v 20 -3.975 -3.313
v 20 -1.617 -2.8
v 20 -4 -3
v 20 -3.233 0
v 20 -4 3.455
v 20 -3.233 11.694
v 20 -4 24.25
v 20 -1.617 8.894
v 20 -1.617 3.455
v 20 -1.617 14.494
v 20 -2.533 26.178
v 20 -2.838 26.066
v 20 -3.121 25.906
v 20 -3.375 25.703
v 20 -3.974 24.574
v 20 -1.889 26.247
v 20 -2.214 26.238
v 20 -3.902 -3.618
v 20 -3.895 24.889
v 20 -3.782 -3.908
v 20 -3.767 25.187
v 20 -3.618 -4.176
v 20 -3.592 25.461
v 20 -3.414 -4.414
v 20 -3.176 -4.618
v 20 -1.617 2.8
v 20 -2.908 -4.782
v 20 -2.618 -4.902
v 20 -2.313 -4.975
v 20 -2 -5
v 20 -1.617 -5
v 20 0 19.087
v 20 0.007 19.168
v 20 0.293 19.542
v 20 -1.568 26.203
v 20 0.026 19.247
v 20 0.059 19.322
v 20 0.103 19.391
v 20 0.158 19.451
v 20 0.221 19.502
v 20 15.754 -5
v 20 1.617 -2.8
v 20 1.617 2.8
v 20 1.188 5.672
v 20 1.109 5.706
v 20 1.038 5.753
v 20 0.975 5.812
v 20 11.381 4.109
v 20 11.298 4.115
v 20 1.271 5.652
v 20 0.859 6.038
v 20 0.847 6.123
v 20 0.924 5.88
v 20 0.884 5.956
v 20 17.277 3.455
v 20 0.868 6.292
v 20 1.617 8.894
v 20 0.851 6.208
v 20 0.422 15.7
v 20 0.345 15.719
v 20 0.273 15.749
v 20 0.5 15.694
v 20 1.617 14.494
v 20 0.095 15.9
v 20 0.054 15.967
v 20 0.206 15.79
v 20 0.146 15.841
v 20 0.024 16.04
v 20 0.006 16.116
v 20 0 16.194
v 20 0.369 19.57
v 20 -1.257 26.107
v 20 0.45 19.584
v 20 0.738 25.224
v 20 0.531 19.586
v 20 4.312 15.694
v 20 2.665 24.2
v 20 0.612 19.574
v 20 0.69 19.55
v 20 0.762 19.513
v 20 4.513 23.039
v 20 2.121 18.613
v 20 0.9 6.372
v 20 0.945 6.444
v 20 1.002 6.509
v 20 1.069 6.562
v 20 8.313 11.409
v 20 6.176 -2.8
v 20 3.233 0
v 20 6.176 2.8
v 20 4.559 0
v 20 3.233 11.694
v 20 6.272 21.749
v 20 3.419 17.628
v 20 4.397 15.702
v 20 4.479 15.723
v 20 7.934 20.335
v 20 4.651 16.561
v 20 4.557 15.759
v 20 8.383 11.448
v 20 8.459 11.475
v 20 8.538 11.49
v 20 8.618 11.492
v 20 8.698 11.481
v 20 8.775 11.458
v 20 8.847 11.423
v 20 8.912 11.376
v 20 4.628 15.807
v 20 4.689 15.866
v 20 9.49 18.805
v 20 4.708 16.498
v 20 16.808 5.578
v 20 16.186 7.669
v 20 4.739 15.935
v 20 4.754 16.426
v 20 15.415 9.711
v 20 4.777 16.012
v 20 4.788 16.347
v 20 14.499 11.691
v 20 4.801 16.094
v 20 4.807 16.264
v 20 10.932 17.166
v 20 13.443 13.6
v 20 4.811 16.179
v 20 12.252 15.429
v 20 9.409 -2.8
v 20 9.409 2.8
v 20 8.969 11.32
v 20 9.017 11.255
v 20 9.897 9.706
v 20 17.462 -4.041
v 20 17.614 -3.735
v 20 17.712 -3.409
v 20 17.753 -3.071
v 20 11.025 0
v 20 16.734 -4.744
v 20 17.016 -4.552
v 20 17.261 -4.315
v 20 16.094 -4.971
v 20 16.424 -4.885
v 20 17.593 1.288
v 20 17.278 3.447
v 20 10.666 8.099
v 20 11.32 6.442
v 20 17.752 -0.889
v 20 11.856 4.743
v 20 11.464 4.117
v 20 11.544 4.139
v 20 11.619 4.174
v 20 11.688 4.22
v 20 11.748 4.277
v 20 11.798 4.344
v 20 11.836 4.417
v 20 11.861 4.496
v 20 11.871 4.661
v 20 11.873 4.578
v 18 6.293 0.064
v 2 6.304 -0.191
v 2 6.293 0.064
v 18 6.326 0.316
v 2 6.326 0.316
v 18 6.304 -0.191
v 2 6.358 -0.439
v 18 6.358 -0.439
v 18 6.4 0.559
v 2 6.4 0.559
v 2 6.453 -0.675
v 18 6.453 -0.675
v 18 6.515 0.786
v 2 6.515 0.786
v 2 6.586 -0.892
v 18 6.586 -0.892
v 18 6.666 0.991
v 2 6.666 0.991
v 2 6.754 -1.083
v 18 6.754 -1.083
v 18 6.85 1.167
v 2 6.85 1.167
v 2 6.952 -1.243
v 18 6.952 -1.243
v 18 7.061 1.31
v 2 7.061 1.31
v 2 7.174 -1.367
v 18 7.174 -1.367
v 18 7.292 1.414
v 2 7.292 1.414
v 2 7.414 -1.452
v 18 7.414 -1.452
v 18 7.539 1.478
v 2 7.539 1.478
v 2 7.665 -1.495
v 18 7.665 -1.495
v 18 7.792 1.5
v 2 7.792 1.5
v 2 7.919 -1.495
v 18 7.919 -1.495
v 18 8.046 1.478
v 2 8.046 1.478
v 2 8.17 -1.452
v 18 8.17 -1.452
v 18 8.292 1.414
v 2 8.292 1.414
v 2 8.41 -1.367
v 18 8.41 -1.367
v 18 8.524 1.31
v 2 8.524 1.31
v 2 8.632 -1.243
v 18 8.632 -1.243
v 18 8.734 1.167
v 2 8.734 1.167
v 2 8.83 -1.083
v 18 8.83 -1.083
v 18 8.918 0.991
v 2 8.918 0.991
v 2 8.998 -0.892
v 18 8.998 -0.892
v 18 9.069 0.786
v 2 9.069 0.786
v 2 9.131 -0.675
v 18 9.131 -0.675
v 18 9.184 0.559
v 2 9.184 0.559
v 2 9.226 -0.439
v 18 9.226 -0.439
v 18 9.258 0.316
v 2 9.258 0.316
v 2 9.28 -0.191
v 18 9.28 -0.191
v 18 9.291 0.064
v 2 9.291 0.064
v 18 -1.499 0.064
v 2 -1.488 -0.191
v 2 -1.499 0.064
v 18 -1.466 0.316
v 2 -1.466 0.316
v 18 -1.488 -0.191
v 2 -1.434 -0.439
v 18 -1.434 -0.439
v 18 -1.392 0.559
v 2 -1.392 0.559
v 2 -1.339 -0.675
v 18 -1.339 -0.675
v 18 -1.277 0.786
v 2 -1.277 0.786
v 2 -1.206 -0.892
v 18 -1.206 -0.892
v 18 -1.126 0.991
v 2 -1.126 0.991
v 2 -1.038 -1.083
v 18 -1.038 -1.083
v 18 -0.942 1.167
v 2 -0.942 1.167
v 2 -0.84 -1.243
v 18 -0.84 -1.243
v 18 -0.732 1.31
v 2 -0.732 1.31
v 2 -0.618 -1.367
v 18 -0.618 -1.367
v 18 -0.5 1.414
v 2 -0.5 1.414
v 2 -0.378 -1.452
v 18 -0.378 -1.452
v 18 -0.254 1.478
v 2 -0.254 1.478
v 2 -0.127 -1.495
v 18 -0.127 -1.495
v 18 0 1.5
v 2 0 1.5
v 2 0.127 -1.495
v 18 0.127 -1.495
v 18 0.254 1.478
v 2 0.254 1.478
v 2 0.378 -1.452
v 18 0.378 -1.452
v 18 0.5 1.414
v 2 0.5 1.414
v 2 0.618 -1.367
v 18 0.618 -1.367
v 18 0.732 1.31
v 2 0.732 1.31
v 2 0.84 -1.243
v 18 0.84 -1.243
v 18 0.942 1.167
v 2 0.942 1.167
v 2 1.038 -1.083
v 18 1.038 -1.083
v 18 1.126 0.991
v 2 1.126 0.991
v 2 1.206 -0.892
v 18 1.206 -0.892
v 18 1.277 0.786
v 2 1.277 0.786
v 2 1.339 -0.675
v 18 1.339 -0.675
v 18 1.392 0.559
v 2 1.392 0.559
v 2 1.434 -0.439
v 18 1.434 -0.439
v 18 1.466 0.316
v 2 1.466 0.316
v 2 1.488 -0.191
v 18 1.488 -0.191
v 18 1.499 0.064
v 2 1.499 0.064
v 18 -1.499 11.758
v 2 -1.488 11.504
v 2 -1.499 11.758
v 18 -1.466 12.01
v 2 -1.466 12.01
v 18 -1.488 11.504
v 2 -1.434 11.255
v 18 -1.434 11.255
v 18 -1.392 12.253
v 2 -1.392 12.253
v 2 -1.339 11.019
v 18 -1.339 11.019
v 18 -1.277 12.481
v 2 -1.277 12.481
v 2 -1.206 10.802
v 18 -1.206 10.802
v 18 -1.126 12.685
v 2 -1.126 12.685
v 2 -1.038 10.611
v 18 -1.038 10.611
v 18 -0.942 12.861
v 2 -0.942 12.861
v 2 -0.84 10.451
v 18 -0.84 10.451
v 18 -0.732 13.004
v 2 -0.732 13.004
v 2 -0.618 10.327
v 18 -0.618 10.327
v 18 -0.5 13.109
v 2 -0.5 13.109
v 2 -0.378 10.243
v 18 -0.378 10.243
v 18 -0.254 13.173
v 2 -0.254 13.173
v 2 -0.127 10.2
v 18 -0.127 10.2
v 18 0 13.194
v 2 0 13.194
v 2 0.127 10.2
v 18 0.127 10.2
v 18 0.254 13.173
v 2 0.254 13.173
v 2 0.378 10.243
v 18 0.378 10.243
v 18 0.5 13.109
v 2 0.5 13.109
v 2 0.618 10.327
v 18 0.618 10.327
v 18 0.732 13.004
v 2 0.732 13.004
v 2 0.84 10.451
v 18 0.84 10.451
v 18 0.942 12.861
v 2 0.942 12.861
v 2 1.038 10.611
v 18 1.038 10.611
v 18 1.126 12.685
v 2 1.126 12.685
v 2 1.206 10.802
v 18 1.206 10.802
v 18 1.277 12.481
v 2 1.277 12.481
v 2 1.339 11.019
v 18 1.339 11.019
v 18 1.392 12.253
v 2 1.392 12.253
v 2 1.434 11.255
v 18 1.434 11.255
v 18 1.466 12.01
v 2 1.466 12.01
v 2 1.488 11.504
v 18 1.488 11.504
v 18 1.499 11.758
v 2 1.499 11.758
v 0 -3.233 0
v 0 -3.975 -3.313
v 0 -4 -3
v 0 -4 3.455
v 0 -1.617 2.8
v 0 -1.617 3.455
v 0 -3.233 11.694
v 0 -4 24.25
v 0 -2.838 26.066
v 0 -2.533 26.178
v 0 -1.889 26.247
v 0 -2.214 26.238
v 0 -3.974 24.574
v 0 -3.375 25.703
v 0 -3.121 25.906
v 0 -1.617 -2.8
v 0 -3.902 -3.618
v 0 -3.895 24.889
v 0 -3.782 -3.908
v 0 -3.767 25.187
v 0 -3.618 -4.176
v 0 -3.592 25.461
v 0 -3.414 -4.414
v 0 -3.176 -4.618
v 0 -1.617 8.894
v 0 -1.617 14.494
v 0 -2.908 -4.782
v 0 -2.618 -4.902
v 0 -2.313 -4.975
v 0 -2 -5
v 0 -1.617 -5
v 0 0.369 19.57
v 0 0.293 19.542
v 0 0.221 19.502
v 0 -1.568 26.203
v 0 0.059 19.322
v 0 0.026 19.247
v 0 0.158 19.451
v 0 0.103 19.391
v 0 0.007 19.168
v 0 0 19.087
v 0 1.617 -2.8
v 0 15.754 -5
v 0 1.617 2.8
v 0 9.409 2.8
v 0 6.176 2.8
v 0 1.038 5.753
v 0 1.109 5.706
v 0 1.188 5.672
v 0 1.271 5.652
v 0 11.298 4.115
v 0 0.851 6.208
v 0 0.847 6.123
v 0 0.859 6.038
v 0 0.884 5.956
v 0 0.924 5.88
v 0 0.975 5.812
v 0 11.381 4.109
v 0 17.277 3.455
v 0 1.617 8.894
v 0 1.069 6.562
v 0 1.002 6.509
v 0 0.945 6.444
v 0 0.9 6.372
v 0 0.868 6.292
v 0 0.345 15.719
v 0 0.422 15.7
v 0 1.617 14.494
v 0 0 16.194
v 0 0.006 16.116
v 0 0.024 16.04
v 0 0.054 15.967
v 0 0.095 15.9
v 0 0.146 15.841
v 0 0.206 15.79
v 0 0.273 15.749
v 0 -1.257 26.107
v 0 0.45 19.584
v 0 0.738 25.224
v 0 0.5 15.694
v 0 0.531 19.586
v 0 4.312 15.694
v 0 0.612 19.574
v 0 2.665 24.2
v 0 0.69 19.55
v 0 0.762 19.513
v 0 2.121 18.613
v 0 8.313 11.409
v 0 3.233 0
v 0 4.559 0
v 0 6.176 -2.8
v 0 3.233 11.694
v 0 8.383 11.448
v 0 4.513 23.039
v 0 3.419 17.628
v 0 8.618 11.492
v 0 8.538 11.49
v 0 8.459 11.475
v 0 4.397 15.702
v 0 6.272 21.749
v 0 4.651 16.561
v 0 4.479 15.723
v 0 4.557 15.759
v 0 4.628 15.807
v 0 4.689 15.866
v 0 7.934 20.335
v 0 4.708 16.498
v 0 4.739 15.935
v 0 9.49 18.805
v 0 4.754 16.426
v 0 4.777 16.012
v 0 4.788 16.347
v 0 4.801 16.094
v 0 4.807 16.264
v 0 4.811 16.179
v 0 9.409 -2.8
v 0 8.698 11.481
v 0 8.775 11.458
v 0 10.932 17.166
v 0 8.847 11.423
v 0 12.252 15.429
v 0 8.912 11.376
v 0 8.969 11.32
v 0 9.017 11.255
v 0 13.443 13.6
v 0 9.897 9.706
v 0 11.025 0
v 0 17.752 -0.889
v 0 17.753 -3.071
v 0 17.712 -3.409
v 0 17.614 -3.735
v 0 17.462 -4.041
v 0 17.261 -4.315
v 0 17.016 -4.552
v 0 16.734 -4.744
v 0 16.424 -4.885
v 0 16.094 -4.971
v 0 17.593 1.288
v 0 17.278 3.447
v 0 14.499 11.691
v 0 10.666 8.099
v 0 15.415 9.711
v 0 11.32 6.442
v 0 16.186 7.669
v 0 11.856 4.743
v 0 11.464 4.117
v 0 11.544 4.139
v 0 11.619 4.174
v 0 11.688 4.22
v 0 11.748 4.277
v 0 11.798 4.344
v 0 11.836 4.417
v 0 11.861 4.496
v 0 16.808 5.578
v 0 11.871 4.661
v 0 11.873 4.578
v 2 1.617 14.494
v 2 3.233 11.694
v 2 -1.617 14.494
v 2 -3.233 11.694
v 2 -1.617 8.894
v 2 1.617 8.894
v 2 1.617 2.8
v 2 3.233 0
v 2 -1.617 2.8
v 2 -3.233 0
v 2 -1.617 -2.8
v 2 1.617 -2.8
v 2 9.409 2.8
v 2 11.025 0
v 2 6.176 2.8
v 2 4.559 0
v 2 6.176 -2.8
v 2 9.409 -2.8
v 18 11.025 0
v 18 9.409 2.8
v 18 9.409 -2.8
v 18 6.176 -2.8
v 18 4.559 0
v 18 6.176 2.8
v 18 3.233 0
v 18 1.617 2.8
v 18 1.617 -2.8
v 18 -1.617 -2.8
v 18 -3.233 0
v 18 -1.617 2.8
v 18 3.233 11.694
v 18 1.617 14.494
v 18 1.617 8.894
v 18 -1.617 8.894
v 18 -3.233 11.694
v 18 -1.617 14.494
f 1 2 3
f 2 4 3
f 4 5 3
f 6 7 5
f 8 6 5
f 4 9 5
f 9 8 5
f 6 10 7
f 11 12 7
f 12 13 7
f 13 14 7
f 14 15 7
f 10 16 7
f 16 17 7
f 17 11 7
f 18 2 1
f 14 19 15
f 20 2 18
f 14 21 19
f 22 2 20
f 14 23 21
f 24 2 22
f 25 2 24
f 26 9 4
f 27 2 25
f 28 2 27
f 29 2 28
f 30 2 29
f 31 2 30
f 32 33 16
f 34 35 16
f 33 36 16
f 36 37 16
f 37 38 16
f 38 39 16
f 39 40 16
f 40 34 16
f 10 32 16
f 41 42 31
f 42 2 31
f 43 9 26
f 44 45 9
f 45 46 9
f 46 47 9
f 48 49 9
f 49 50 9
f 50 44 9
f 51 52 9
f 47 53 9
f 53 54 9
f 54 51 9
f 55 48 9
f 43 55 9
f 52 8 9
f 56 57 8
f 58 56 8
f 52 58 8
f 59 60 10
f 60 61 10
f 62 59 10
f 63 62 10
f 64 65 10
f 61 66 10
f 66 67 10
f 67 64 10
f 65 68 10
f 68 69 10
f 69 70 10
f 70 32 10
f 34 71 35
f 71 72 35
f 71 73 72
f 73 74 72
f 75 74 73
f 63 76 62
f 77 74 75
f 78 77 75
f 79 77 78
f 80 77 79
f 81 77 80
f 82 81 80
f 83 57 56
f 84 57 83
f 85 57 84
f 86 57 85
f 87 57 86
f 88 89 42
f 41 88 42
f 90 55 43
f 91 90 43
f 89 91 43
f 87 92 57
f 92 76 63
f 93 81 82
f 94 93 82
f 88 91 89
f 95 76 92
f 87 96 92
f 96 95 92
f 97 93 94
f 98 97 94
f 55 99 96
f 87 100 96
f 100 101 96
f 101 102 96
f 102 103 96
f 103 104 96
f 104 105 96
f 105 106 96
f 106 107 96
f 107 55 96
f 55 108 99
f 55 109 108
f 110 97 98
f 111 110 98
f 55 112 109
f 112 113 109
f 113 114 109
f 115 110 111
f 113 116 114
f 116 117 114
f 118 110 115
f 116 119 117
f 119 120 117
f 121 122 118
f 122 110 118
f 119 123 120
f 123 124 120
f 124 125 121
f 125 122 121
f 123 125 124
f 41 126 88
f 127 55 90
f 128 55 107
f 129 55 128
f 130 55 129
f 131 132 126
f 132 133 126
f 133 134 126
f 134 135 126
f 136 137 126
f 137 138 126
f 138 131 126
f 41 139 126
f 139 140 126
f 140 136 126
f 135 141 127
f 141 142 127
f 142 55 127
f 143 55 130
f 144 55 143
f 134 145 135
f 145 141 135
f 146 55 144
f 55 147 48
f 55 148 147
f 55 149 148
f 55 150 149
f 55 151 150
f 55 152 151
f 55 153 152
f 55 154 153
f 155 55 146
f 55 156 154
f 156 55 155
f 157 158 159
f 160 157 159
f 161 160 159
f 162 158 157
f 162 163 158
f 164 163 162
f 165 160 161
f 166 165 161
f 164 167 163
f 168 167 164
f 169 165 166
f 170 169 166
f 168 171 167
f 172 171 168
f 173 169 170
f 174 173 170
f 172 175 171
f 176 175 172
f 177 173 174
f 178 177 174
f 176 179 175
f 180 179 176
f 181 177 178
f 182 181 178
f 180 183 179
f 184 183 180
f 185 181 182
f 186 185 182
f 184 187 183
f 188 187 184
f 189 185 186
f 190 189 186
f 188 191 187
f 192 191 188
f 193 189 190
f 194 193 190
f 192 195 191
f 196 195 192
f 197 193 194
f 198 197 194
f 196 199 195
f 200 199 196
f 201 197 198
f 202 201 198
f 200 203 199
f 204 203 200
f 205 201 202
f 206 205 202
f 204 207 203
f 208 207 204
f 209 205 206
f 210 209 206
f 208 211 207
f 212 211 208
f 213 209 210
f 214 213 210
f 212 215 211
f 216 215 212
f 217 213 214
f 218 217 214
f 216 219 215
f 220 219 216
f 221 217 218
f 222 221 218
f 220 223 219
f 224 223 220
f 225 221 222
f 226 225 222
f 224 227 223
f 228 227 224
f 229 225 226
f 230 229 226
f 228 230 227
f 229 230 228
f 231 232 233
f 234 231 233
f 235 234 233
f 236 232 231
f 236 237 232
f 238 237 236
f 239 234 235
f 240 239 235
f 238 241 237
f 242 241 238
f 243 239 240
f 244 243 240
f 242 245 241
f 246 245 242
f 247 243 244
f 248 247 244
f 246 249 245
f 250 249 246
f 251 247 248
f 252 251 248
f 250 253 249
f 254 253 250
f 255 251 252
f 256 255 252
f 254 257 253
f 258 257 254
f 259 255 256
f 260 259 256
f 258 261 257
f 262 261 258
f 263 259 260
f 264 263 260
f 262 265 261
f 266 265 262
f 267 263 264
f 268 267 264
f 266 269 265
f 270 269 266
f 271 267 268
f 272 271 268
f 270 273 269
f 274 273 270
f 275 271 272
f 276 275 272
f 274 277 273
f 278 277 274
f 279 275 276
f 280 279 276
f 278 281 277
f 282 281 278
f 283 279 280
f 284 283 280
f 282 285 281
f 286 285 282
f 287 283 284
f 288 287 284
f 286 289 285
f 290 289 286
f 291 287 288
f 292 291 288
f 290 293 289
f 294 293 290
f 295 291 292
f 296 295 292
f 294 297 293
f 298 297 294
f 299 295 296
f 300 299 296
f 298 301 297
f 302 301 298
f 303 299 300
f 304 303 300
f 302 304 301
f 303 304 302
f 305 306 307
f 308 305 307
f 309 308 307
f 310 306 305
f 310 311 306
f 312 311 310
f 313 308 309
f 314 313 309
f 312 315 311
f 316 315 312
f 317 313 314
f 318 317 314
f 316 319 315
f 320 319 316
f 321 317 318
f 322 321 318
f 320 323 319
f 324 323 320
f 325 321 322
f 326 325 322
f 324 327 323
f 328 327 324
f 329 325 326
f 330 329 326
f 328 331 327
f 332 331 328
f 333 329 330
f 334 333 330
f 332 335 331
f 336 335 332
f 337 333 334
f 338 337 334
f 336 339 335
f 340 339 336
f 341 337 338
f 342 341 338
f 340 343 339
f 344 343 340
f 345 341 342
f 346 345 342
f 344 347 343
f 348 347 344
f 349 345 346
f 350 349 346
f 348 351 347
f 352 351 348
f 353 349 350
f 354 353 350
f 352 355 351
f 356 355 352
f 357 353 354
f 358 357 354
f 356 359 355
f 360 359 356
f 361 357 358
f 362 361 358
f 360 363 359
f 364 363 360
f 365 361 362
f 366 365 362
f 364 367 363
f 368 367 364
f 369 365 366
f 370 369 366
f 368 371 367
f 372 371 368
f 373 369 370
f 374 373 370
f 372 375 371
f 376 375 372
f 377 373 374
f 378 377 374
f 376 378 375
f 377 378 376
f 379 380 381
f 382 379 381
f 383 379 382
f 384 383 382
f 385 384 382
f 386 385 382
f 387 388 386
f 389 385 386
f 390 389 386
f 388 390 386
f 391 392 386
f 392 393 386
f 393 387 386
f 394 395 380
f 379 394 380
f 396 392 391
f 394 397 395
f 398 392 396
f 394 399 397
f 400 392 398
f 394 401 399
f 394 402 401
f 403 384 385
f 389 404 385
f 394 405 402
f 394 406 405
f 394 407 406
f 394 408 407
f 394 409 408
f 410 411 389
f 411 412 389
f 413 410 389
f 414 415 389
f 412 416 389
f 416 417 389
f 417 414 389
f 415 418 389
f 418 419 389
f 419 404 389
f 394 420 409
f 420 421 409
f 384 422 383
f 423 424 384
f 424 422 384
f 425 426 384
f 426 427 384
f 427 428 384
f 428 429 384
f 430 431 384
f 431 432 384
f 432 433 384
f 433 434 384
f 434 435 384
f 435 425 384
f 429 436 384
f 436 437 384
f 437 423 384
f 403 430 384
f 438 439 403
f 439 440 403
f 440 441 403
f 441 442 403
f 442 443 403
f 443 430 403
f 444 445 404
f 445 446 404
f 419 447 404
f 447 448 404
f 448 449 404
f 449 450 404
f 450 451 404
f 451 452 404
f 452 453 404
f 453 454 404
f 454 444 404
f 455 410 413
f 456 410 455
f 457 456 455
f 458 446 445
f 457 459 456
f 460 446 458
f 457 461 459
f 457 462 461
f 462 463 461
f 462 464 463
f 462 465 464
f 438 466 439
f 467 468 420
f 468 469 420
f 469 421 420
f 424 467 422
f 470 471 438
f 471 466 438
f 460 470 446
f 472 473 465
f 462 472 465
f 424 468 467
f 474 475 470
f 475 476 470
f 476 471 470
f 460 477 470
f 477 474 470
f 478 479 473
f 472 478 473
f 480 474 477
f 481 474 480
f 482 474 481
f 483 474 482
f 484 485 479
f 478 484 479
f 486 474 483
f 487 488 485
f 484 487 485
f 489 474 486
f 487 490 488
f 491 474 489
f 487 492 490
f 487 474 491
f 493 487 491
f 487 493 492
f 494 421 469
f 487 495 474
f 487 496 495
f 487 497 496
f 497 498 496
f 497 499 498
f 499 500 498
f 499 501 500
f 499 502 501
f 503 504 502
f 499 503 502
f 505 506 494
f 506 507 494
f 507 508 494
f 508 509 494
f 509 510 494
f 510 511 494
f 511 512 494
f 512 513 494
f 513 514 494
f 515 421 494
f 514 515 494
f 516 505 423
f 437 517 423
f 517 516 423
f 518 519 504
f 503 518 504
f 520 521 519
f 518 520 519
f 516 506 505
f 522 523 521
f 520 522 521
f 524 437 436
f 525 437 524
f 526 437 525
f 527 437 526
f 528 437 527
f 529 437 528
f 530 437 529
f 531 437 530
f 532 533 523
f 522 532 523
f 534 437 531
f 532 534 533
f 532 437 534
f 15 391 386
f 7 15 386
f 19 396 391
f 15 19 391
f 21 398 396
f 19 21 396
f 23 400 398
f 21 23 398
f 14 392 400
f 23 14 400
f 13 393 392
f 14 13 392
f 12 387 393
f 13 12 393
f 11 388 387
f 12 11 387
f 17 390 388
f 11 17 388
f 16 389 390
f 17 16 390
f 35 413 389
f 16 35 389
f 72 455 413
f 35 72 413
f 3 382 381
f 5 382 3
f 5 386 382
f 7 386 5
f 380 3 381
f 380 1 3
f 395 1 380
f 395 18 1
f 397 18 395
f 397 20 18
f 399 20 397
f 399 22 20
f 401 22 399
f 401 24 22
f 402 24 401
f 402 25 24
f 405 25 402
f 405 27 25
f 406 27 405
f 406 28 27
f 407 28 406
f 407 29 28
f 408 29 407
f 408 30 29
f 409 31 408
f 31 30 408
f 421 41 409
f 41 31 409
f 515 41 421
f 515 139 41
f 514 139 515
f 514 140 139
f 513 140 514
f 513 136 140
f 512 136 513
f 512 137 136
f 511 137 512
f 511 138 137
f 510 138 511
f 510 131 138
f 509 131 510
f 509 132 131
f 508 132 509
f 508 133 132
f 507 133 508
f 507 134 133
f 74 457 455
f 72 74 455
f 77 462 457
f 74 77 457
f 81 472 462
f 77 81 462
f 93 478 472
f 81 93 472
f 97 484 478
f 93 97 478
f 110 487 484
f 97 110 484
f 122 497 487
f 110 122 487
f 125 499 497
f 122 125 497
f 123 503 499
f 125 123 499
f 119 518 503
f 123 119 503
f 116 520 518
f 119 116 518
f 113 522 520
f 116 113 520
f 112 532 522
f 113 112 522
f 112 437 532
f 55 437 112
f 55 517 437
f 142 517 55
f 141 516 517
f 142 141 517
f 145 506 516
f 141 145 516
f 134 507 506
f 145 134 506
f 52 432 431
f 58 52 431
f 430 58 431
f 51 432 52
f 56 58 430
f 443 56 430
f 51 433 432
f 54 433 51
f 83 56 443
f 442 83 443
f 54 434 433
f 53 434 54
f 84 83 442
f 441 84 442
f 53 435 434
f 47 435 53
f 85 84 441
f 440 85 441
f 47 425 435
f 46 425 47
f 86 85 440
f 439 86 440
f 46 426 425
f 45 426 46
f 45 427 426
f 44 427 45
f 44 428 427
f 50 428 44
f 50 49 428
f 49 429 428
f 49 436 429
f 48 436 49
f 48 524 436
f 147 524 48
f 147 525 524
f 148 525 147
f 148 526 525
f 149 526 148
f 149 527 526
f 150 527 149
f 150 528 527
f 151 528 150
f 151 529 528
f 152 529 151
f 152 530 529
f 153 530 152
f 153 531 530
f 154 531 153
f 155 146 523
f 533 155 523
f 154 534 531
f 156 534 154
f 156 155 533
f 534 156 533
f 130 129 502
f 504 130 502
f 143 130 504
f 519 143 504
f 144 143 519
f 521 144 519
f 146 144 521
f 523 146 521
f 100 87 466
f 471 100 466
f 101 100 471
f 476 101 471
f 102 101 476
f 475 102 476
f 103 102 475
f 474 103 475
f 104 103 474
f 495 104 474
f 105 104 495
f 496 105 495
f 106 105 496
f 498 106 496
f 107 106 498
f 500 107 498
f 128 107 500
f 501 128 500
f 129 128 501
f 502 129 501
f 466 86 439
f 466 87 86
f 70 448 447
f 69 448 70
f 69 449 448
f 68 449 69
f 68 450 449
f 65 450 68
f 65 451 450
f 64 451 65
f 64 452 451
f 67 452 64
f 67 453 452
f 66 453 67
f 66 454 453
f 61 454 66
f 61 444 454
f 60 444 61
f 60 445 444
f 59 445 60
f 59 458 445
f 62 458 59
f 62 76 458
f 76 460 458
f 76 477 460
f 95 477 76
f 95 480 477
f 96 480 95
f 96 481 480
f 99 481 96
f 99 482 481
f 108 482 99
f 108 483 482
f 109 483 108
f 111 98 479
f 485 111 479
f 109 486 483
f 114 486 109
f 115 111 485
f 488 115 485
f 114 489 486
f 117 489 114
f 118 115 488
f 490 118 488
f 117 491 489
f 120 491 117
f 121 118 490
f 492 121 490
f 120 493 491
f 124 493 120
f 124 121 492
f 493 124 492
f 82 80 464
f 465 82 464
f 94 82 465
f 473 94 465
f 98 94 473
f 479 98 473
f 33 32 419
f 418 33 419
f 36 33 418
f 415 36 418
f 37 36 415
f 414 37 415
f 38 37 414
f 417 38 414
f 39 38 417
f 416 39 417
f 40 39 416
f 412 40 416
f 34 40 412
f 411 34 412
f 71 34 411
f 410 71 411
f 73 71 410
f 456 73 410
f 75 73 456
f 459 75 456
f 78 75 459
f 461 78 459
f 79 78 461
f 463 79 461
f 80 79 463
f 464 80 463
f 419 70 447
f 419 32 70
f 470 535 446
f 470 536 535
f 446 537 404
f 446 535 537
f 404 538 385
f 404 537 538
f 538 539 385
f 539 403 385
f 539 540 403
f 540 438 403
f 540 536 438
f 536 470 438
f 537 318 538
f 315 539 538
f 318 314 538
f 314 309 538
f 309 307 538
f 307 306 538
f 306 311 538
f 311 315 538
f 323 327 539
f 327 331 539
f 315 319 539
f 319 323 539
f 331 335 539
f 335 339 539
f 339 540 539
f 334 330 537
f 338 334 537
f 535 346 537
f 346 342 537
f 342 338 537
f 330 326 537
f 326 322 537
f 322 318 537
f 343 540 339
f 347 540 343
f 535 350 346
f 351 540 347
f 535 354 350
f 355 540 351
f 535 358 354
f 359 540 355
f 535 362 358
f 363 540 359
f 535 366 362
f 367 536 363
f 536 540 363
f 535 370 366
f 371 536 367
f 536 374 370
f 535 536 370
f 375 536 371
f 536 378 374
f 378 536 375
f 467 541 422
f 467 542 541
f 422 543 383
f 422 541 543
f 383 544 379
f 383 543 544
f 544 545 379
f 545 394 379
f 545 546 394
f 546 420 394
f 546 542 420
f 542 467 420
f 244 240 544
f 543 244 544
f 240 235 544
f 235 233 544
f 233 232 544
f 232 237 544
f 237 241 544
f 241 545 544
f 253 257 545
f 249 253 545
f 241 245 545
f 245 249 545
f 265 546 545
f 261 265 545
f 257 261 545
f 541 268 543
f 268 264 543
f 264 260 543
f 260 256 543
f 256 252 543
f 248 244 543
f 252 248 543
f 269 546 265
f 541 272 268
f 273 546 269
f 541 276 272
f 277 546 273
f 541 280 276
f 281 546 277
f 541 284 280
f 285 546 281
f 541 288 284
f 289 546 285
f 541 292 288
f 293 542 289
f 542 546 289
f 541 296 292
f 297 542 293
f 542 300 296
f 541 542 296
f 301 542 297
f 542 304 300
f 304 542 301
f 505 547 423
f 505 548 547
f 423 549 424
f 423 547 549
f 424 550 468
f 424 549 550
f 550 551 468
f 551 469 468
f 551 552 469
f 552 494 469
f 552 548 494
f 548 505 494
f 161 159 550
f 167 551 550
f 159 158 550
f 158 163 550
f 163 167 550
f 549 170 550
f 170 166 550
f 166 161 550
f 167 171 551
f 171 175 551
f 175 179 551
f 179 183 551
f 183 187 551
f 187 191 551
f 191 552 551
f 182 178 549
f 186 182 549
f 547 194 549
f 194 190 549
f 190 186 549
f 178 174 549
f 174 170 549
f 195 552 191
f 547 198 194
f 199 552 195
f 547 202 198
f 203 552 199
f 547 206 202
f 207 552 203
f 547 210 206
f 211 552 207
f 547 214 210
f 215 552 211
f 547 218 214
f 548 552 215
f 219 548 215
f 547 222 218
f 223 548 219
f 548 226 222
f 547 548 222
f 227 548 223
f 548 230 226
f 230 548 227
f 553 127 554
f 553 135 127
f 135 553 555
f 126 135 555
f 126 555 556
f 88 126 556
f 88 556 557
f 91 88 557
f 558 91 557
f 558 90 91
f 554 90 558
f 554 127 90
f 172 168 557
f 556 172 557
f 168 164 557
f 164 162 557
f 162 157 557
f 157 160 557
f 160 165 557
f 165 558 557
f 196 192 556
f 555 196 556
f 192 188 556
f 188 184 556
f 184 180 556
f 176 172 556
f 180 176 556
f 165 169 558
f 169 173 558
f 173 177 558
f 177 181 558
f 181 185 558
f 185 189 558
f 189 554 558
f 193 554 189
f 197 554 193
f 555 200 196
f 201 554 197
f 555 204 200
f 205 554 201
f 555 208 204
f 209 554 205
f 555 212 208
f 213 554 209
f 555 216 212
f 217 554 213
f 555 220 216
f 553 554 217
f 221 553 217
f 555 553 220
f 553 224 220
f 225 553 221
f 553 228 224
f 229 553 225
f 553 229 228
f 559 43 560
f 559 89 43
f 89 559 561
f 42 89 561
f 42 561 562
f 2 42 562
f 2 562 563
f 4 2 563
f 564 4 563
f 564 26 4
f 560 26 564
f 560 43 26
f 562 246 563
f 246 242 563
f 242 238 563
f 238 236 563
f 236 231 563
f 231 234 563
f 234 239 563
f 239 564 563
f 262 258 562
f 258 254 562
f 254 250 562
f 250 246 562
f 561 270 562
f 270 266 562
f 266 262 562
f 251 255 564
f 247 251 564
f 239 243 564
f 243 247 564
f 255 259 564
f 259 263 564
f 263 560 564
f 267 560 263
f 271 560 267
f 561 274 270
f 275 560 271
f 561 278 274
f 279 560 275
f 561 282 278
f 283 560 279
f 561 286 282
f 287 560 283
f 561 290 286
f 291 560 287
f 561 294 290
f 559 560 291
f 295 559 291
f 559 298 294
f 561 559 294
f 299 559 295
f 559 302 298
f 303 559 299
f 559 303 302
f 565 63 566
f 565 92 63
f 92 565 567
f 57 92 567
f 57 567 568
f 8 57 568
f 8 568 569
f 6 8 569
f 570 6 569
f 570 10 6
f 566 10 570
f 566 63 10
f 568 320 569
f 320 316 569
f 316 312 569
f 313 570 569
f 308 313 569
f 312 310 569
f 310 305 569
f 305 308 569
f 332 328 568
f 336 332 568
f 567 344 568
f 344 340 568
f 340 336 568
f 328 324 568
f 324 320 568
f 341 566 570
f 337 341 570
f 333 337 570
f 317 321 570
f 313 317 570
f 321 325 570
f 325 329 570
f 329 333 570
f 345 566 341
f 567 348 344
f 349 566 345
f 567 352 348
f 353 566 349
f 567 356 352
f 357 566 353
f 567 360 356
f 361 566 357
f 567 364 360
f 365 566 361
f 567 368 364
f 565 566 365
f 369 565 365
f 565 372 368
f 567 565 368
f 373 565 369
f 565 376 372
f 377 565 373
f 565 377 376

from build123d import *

# Parameters (mm, degrees)
SKETCH1_R           = 1.5
BOSS_EXTRUDE1_DEPTH = 20
CUT_EXTRUDE1_DEPTH  = 2
CUT_EXTRUDE2_START  = 20
CUT_EXTRUDE2_DEPTH  = 2


with BuildPart() as part:
    # Sketch1 → Boss-Extrude1 (new body)
    with BuildSketch(Plane(origin=(0, 0, 0), x_dir=(0, 0, -1), z_dir=(1, 0, 0))):
        with BuildLine():
            Line((-24.25, -4), (3, -4))
            ThreePointArc((3, -4), (4.414213562, -3.414213562), (5, -2))
            Line((5, -2), (5, 15.754424432))
            ThreePointArc((5, 15.754424432), (4.439006977, 17.143402085), (3.070741081, 17.753172966))
            ThreePointArc((3.070741081, 17.753172966), (-14.52537265, 12.863616062), (-26.106953382, -1.257218647))
            ThreePointArc((-26.106953382, -1.257218647), (-25.906134461, -3.121257619), (-24.25, -4))
        make_face()
        with Locations((0, 7.792107243)):
            Circle(SKETCH1_R, mode=Mode.SUBTRACT)
        Circle(SKETCH1_R, mode=Mode.SUBTRACT)
        with Locations((-11.694197133, 0)):
            Circle(SKETCH1_R, mode=Mode.SUBTRACT)
        with BuildLine():
            Line((-16.194197133, 0), (-19.086908103, 0))
            ThreePointArc((-19.086908103, 0), (-19.523483355, 0.256274644), (-19.512525938, 0.762391804))
            ThreePointArc((-19.512525938, 0.762391804), (-18.131084667, 2.778063971), (-16.561428533, 4.650894419))
            ThreePointArc((-16.561428533, 4.650894419), (-16.012010004, 4.777196244), (-15.694197133, 4.311569945))
            Line((-15.694197133, 4.311569945), (-15.694197133, 0.5))
            ThreePointArc((-15.694197133, 0.5), (-15.840643743, 0.146446609), (-16.194197133, 0))
        make_face(mode=Mode.SUBTRACT)
        with BuildLine():
            Line((-11.408525011, 8.313239357), (-6.562071453, 1.068743928))
            ThreePointArc((-6.562071453, 1.068743928), (-6.037987222, 0.85867559), (-5.652264441, 1.2709994))
            Line((-5.652264441, 1.2709994), (-4.115149007, 11.298363901))
            ThreePointArc((-4.115149007, 11.298363901), (-4.277279765, 11.747905828), (-4.742779484, 11.855999947))
            ThreePointArc((-4.742779484, 11.855999947), (-8.099246212, 10.666463574), (-11.255194335, 9.016961489))
            ThreePointArc((-11.255194335, 9.016961489), (-11.481482966, 8.697701132), (-11.408525011, 8.313239357))
        make_face(mode=Mode.SUBTRACT)
    extrude(amount=BOSS_EXTRUDE1_DEPTH)

    # Sketch2 → Cut-Extrude1 (cut)
    with BuildSketch(Plane(origin=(0, 0, 0), x_dir=(0, 0, -1), z_dir=(1, 0, 0))):
        Polygon((-11.694197133, -3.233161507), (-8.894197133, -1.616580754), (-8.894197133, 1.616580754), (-11.694197133, 3.233161507), (-14.494197133, 1.616580754), (-14.494197133, -1.616580754), align=None)
        Polygon((0, -3.233161507), (2.8, -1.616580754), (2.8, 1.616580754), (0, 3.233161507), (-2.8, 1.616580754), (-2.8, -1.616580754), align=None)
        Polygon((0, 4.558945735), (2.8, 6.175526489), (2.8, 9.408687997), (0, 11.02526875), (-2.8, 9.408687997), (-2.8, 6.175526489), align=None)
    extrude(amount=CUT_EXTRUDE1_DEPTH, mode=Mode.SUBTRACT)

    # Sketch2<2> → Cut-Extrude2 (cut)
    with BuildSketch(Plane(origin=(0, 0, 0), x_dir=(0, 0, -1), z_dir=(1, 0, 0)).offset(CUT_EXTRUDE2_START)):
        Polygon((-11.694197133, -3.233161507), (-8.894197133, -1.616580754), (-8.894197133, 1.616580754), (-11.694197133, 3.233161507), (-14.494197133, 1.616580754), (-14.494197133, -1.616580754), align=None)
        Polygon((0, -3.233161507), (2.8, -1.616580754), (2.8, 1.616580754), (0, 3.233161507), (-2.8, 1.616580754), (-2.8, -1.616580754), align=None)
        Polygon((0, 4.558945735), (2.8, 6.175526489), (2.8, 9.408687997), (0, 11.02526875), (-2.8, 9.408687997), (-2.8, 6.175526489), align=None)
    extrude(amount=-CUT_EXTRUDE2_DEPTH, mode=Mode.SUBTRACT)


solid = part.part
